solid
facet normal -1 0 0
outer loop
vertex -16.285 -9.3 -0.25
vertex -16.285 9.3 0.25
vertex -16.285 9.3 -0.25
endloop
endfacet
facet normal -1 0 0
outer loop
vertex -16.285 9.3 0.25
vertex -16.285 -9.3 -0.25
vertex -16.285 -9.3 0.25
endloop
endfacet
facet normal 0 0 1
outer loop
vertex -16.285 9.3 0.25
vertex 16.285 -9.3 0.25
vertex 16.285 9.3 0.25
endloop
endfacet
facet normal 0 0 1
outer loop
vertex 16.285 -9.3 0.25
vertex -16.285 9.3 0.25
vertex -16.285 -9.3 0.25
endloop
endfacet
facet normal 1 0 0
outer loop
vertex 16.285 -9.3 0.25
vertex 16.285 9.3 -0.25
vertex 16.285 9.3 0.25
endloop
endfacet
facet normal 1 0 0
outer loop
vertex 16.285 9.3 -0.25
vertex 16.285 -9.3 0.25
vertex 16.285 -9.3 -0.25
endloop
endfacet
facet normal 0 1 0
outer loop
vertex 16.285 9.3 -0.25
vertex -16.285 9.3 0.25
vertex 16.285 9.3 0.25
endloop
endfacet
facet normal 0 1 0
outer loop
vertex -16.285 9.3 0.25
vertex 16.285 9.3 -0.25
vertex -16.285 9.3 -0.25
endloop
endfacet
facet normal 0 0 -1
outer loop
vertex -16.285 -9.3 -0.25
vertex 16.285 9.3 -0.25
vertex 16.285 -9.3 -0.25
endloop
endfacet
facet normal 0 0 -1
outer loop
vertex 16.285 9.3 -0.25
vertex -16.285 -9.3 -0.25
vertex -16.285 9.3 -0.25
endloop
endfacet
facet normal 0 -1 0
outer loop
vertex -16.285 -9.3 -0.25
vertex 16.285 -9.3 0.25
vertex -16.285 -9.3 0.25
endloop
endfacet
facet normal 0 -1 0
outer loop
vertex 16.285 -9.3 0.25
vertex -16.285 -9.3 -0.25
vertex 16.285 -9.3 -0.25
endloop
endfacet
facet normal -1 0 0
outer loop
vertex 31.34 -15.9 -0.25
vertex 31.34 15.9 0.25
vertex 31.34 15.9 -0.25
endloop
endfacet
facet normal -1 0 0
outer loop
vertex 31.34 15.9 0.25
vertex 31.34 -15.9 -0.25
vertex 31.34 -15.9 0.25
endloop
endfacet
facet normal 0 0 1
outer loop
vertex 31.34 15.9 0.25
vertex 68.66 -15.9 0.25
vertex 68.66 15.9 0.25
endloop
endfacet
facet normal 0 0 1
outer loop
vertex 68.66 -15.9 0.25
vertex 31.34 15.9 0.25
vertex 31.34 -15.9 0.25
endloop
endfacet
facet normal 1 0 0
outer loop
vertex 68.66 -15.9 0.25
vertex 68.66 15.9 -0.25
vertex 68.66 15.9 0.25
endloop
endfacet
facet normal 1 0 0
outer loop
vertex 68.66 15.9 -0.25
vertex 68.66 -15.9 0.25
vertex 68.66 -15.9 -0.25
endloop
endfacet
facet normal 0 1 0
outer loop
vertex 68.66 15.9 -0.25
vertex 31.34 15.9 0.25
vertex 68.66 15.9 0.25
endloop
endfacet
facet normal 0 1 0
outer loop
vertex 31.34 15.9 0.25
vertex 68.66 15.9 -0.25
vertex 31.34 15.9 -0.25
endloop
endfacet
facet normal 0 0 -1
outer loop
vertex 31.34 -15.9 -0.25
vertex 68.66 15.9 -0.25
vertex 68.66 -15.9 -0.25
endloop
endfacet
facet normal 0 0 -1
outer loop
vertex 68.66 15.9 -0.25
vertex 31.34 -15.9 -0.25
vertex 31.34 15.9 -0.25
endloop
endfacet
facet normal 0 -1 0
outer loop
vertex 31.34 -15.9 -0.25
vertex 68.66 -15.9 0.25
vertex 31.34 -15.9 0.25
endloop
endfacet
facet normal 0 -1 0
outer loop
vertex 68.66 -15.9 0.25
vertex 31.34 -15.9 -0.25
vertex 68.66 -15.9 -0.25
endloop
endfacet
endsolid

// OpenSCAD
cube([32.57, 18.6, 0.5], true);
translate([50,0,0]) {
    cube([37.32, 31.8, 0.5], true);
}
